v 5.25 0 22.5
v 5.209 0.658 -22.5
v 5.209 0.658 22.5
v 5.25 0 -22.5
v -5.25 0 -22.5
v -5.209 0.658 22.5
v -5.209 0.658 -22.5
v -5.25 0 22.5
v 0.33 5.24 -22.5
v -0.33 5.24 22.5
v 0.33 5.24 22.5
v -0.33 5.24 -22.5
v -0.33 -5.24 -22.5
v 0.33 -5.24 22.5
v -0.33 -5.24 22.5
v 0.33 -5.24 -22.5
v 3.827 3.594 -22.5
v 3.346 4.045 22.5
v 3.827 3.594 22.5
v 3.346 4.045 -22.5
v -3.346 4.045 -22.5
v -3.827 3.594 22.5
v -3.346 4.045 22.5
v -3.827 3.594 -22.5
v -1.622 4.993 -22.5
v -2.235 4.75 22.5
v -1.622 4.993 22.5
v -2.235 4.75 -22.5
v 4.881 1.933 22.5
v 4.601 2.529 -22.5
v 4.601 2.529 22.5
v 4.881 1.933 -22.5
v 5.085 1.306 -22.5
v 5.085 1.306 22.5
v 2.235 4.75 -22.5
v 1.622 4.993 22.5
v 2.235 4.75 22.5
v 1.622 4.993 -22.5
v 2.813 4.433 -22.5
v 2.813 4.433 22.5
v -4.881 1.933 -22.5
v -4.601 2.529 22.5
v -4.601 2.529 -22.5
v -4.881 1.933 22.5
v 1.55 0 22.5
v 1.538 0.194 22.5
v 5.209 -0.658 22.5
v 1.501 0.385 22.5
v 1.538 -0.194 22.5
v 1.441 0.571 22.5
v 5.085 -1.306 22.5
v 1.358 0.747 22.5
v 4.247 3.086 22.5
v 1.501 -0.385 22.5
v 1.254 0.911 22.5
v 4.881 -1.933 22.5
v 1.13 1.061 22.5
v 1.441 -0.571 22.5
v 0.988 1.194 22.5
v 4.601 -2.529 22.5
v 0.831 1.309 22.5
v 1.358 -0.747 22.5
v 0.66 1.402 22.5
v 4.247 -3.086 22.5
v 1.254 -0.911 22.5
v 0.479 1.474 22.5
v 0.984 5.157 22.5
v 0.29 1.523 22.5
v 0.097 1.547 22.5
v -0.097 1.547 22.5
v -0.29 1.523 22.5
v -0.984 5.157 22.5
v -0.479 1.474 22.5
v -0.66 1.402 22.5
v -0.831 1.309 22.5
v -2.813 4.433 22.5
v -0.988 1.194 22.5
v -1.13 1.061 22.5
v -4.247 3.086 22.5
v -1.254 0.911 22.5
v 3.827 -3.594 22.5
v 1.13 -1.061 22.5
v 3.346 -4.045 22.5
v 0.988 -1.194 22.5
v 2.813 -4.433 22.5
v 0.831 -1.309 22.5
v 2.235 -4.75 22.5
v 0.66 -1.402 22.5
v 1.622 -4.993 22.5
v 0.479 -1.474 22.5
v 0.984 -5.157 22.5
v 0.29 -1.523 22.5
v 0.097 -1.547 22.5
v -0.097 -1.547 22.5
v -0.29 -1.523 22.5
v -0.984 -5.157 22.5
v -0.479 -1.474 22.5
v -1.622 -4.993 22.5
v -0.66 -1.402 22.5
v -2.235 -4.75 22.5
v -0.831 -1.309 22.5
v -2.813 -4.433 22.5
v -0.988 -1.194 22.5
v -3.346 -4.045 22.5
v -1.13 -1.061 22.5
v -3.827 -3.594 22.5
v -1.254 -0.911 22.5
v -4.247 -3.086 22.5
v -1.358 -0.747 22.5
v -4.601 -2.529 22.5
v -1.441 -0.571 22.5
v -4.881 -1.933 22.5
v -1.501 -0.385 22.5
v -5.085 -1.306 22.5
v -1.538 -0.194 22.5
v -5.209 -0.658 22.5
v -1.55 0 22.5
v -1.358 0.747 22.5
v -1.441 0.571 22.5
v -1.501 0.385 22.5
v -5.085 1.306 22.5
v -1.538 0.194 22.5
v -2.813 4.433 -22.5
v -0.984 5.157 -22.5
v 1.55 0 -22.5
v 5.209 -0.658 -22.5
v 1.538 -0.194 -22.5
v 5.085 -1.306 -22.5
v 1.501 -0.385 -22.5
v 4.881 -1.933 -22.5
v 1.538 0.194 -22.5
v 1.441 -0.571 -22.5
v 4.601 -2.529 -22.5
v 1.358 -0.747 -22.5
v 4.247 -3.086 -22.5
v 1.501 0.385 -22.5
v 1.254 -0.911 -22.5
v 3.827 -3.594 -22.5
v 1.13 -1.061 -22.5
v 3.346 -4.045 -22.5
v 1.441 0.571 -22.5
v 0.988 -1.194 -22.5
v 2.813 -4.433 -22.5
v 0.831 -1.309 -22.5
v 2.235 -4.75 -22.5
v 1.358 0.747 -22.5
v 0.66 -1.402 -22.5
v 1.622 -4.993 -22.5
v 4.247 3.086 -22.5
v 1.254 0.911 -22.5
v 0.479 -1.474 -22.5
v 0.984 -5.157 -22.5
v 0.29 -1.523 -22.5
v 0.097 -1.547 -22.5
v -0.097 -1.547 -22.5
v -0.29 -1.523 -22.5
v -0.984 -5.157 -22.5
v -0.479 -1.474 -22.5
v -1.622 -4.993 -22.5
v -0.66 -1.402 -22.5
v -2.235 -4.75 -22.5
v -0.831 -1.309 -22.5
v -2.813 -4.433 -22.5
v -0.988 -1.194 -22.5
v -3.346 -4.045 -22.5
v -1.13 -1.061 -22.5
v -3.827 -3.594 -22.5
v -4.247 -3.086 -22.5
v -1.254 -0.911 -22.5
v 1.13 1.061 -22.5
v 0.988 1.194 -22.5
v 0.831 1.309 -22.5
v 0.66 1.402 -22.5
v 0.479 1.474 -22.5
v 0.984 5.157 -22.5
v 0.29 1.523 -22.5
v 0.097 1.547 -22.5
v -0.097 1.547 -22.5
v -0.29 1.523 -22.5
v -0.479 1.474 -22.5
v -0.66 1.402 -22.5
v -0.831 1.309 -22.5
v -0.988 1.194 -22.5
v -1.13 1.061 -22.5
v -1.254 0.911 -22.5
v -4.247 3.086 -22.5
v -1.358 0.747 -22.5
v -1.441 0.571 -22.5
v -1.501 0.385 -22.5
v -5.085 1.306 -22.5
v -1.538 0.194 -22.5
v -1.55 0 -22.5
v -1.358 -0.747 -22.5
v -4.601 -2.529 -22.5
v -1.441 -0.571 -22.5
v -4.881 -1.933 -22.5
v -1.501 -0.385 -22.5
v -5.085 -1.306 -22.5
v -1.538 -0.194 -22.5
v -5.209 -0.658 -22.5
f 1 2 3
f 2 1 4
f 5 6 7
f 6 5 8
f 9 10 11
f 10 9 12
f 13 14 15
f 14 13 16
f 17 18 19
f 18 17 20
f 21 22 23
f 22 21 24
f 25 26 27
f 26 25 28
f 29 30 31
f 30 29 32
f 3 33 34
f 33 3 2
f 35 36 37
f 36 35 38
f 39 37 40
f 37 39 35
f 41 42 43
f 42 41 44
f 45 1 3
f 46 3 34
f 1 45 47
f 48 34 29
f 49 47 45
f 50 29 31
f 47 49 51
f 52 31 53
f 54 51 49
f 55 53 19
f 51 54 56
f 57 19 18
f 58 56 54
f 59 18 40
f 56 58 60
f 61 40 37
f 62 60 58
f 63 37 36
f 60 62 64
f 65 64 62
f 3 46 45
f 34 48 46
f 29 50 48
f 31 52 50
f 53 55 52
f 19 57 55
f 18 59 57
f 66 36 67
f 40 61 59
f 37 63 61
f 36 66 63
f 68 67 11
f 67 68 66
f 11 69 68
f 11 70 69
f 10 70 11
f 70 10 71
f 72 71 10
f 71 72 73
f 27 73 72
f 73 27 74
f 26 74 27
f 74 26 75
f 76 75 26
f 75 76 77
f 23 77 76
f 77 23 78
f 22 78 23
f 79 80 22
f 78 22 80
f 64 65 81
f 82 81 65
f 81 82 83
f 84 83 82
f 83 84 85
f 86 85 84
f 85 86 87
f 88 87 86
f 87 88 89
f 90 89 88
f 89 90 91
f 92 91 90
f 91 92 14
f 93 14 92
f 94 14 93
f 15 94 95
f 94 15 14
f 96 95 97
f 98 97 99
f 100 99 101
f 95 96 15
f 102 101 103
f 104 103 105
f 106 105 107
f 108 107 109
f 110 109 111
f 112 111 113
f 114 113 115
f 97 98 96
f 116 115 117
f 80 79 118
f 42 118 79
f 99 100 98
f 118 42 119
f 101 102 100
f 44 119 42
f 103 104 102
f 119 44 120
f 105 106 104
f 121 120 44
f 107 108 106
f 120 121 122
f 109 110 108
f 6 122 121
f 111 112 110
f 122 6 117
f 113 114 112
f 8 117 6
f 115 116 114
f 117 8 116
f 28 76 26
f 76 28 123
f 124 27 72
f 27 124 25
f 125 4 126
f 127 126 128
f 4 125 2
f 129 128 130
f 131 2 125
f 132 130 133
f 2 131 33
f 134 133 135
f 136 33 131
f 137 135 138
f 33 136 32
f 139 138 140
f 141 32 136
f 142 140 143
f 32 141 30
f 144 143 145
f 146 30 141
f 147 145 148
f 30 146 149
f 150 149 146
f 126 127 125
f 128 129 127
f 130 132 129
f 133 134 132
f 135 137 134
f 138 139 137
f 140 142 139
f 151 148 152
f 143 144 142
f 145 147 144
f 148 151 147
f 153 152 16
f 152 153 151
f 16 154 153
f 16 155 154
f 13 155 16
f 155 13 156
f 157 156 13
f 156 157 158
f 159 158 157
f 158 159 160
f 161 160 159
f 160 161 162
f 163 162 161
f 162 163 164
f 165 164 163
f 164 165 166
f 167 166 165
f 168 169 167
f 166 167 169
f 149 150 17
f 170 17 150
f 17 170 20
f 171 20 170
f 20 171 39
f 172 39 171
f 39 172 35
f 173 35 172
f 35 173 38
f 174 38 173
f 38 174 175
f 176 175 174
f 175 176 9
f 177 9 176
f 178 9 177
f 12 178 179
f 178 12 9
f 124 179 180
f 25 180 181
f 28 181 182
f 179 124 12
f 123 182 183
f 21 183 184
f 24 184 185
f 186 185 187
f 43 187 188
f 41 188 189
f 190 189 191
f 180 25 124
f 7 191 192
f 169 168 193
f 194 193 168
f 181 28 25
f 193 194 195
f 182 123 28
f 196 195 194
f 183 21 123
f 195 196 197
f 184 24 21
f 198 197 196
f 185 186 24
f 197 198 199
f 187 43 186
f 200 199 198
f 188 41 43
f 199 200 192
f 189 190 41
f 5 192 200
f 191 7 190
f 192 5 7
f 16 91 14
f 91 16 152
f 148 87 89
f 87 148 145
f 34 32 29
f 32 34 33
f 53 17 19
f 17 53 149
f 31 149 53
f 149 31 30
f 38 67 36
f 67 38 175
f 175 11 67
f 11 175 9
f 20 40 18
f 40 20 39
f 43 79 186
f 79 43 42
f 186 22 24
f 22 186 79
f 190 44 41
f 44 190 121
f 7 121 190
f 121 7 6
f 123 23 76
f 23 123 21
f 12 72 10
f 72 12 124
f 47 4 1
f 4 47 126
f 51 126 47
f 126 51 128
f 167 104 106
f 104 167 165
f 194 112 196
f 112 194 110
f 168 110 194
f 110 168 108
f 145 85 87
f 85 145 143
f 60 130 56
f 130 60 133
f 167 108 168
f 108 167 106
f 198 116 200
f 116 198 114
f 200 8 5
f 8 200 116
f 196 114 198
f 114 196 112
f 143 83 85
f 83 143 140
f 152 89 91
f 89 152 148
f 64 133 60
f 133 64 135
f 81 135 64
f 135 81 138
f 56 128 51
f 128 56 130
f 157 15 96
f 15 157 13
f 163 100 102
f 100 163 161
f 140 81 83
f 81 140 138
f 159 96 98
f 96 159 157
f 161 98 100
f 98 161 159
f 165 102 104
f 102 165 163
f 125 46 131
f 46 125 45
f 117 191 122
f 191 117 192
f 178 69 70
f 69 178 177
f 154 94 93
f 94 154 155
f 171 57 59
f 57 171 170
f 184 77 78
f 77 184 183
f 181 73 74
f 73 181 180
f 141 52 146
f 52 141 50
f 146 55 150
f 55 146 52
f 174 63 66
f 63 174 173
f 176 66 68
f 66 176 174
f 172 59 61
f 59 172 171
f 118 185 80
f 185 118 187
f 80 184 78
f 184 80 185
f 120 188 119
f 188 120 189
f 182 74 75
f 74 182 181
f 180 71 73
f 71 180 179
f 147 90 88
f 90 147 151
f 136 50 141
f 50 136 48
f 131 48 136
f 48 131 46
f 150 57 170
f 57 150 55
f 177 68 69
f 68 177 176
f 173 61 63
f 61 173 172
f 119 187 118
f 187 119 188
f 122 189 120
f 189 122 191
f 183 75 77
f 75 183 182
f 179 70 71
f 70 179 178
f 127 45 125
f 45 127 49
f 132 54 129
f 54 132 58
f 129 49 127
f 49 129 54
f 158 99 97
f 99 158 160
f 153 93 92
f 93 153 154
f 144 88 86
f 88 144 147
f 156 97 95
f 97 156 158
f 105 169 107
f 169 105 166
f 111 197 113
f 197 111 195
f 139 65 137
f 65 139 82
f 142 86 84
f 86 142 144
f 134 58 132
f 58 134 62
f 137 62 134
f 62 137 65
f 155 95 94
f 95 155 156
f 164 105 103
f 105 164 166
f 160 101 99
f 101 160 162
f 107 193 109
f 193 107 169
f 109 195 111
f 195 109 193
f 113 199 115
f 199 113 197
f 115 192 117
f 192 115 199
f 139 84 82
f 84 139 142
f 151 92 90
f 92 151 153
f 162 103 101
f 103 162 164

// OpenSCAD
$fn = 50;


difference() {
	union() {
		translate(v = [0, 0, -22.5000000000]) {
			cylinder(h = 45, r = 5.2500000000);
		}
	}
	union() {
		translate(v = [0, 0, -100.0000000000]) {
			cylinder(h = 200, r = 1.5500000000);
		}
	}
}
